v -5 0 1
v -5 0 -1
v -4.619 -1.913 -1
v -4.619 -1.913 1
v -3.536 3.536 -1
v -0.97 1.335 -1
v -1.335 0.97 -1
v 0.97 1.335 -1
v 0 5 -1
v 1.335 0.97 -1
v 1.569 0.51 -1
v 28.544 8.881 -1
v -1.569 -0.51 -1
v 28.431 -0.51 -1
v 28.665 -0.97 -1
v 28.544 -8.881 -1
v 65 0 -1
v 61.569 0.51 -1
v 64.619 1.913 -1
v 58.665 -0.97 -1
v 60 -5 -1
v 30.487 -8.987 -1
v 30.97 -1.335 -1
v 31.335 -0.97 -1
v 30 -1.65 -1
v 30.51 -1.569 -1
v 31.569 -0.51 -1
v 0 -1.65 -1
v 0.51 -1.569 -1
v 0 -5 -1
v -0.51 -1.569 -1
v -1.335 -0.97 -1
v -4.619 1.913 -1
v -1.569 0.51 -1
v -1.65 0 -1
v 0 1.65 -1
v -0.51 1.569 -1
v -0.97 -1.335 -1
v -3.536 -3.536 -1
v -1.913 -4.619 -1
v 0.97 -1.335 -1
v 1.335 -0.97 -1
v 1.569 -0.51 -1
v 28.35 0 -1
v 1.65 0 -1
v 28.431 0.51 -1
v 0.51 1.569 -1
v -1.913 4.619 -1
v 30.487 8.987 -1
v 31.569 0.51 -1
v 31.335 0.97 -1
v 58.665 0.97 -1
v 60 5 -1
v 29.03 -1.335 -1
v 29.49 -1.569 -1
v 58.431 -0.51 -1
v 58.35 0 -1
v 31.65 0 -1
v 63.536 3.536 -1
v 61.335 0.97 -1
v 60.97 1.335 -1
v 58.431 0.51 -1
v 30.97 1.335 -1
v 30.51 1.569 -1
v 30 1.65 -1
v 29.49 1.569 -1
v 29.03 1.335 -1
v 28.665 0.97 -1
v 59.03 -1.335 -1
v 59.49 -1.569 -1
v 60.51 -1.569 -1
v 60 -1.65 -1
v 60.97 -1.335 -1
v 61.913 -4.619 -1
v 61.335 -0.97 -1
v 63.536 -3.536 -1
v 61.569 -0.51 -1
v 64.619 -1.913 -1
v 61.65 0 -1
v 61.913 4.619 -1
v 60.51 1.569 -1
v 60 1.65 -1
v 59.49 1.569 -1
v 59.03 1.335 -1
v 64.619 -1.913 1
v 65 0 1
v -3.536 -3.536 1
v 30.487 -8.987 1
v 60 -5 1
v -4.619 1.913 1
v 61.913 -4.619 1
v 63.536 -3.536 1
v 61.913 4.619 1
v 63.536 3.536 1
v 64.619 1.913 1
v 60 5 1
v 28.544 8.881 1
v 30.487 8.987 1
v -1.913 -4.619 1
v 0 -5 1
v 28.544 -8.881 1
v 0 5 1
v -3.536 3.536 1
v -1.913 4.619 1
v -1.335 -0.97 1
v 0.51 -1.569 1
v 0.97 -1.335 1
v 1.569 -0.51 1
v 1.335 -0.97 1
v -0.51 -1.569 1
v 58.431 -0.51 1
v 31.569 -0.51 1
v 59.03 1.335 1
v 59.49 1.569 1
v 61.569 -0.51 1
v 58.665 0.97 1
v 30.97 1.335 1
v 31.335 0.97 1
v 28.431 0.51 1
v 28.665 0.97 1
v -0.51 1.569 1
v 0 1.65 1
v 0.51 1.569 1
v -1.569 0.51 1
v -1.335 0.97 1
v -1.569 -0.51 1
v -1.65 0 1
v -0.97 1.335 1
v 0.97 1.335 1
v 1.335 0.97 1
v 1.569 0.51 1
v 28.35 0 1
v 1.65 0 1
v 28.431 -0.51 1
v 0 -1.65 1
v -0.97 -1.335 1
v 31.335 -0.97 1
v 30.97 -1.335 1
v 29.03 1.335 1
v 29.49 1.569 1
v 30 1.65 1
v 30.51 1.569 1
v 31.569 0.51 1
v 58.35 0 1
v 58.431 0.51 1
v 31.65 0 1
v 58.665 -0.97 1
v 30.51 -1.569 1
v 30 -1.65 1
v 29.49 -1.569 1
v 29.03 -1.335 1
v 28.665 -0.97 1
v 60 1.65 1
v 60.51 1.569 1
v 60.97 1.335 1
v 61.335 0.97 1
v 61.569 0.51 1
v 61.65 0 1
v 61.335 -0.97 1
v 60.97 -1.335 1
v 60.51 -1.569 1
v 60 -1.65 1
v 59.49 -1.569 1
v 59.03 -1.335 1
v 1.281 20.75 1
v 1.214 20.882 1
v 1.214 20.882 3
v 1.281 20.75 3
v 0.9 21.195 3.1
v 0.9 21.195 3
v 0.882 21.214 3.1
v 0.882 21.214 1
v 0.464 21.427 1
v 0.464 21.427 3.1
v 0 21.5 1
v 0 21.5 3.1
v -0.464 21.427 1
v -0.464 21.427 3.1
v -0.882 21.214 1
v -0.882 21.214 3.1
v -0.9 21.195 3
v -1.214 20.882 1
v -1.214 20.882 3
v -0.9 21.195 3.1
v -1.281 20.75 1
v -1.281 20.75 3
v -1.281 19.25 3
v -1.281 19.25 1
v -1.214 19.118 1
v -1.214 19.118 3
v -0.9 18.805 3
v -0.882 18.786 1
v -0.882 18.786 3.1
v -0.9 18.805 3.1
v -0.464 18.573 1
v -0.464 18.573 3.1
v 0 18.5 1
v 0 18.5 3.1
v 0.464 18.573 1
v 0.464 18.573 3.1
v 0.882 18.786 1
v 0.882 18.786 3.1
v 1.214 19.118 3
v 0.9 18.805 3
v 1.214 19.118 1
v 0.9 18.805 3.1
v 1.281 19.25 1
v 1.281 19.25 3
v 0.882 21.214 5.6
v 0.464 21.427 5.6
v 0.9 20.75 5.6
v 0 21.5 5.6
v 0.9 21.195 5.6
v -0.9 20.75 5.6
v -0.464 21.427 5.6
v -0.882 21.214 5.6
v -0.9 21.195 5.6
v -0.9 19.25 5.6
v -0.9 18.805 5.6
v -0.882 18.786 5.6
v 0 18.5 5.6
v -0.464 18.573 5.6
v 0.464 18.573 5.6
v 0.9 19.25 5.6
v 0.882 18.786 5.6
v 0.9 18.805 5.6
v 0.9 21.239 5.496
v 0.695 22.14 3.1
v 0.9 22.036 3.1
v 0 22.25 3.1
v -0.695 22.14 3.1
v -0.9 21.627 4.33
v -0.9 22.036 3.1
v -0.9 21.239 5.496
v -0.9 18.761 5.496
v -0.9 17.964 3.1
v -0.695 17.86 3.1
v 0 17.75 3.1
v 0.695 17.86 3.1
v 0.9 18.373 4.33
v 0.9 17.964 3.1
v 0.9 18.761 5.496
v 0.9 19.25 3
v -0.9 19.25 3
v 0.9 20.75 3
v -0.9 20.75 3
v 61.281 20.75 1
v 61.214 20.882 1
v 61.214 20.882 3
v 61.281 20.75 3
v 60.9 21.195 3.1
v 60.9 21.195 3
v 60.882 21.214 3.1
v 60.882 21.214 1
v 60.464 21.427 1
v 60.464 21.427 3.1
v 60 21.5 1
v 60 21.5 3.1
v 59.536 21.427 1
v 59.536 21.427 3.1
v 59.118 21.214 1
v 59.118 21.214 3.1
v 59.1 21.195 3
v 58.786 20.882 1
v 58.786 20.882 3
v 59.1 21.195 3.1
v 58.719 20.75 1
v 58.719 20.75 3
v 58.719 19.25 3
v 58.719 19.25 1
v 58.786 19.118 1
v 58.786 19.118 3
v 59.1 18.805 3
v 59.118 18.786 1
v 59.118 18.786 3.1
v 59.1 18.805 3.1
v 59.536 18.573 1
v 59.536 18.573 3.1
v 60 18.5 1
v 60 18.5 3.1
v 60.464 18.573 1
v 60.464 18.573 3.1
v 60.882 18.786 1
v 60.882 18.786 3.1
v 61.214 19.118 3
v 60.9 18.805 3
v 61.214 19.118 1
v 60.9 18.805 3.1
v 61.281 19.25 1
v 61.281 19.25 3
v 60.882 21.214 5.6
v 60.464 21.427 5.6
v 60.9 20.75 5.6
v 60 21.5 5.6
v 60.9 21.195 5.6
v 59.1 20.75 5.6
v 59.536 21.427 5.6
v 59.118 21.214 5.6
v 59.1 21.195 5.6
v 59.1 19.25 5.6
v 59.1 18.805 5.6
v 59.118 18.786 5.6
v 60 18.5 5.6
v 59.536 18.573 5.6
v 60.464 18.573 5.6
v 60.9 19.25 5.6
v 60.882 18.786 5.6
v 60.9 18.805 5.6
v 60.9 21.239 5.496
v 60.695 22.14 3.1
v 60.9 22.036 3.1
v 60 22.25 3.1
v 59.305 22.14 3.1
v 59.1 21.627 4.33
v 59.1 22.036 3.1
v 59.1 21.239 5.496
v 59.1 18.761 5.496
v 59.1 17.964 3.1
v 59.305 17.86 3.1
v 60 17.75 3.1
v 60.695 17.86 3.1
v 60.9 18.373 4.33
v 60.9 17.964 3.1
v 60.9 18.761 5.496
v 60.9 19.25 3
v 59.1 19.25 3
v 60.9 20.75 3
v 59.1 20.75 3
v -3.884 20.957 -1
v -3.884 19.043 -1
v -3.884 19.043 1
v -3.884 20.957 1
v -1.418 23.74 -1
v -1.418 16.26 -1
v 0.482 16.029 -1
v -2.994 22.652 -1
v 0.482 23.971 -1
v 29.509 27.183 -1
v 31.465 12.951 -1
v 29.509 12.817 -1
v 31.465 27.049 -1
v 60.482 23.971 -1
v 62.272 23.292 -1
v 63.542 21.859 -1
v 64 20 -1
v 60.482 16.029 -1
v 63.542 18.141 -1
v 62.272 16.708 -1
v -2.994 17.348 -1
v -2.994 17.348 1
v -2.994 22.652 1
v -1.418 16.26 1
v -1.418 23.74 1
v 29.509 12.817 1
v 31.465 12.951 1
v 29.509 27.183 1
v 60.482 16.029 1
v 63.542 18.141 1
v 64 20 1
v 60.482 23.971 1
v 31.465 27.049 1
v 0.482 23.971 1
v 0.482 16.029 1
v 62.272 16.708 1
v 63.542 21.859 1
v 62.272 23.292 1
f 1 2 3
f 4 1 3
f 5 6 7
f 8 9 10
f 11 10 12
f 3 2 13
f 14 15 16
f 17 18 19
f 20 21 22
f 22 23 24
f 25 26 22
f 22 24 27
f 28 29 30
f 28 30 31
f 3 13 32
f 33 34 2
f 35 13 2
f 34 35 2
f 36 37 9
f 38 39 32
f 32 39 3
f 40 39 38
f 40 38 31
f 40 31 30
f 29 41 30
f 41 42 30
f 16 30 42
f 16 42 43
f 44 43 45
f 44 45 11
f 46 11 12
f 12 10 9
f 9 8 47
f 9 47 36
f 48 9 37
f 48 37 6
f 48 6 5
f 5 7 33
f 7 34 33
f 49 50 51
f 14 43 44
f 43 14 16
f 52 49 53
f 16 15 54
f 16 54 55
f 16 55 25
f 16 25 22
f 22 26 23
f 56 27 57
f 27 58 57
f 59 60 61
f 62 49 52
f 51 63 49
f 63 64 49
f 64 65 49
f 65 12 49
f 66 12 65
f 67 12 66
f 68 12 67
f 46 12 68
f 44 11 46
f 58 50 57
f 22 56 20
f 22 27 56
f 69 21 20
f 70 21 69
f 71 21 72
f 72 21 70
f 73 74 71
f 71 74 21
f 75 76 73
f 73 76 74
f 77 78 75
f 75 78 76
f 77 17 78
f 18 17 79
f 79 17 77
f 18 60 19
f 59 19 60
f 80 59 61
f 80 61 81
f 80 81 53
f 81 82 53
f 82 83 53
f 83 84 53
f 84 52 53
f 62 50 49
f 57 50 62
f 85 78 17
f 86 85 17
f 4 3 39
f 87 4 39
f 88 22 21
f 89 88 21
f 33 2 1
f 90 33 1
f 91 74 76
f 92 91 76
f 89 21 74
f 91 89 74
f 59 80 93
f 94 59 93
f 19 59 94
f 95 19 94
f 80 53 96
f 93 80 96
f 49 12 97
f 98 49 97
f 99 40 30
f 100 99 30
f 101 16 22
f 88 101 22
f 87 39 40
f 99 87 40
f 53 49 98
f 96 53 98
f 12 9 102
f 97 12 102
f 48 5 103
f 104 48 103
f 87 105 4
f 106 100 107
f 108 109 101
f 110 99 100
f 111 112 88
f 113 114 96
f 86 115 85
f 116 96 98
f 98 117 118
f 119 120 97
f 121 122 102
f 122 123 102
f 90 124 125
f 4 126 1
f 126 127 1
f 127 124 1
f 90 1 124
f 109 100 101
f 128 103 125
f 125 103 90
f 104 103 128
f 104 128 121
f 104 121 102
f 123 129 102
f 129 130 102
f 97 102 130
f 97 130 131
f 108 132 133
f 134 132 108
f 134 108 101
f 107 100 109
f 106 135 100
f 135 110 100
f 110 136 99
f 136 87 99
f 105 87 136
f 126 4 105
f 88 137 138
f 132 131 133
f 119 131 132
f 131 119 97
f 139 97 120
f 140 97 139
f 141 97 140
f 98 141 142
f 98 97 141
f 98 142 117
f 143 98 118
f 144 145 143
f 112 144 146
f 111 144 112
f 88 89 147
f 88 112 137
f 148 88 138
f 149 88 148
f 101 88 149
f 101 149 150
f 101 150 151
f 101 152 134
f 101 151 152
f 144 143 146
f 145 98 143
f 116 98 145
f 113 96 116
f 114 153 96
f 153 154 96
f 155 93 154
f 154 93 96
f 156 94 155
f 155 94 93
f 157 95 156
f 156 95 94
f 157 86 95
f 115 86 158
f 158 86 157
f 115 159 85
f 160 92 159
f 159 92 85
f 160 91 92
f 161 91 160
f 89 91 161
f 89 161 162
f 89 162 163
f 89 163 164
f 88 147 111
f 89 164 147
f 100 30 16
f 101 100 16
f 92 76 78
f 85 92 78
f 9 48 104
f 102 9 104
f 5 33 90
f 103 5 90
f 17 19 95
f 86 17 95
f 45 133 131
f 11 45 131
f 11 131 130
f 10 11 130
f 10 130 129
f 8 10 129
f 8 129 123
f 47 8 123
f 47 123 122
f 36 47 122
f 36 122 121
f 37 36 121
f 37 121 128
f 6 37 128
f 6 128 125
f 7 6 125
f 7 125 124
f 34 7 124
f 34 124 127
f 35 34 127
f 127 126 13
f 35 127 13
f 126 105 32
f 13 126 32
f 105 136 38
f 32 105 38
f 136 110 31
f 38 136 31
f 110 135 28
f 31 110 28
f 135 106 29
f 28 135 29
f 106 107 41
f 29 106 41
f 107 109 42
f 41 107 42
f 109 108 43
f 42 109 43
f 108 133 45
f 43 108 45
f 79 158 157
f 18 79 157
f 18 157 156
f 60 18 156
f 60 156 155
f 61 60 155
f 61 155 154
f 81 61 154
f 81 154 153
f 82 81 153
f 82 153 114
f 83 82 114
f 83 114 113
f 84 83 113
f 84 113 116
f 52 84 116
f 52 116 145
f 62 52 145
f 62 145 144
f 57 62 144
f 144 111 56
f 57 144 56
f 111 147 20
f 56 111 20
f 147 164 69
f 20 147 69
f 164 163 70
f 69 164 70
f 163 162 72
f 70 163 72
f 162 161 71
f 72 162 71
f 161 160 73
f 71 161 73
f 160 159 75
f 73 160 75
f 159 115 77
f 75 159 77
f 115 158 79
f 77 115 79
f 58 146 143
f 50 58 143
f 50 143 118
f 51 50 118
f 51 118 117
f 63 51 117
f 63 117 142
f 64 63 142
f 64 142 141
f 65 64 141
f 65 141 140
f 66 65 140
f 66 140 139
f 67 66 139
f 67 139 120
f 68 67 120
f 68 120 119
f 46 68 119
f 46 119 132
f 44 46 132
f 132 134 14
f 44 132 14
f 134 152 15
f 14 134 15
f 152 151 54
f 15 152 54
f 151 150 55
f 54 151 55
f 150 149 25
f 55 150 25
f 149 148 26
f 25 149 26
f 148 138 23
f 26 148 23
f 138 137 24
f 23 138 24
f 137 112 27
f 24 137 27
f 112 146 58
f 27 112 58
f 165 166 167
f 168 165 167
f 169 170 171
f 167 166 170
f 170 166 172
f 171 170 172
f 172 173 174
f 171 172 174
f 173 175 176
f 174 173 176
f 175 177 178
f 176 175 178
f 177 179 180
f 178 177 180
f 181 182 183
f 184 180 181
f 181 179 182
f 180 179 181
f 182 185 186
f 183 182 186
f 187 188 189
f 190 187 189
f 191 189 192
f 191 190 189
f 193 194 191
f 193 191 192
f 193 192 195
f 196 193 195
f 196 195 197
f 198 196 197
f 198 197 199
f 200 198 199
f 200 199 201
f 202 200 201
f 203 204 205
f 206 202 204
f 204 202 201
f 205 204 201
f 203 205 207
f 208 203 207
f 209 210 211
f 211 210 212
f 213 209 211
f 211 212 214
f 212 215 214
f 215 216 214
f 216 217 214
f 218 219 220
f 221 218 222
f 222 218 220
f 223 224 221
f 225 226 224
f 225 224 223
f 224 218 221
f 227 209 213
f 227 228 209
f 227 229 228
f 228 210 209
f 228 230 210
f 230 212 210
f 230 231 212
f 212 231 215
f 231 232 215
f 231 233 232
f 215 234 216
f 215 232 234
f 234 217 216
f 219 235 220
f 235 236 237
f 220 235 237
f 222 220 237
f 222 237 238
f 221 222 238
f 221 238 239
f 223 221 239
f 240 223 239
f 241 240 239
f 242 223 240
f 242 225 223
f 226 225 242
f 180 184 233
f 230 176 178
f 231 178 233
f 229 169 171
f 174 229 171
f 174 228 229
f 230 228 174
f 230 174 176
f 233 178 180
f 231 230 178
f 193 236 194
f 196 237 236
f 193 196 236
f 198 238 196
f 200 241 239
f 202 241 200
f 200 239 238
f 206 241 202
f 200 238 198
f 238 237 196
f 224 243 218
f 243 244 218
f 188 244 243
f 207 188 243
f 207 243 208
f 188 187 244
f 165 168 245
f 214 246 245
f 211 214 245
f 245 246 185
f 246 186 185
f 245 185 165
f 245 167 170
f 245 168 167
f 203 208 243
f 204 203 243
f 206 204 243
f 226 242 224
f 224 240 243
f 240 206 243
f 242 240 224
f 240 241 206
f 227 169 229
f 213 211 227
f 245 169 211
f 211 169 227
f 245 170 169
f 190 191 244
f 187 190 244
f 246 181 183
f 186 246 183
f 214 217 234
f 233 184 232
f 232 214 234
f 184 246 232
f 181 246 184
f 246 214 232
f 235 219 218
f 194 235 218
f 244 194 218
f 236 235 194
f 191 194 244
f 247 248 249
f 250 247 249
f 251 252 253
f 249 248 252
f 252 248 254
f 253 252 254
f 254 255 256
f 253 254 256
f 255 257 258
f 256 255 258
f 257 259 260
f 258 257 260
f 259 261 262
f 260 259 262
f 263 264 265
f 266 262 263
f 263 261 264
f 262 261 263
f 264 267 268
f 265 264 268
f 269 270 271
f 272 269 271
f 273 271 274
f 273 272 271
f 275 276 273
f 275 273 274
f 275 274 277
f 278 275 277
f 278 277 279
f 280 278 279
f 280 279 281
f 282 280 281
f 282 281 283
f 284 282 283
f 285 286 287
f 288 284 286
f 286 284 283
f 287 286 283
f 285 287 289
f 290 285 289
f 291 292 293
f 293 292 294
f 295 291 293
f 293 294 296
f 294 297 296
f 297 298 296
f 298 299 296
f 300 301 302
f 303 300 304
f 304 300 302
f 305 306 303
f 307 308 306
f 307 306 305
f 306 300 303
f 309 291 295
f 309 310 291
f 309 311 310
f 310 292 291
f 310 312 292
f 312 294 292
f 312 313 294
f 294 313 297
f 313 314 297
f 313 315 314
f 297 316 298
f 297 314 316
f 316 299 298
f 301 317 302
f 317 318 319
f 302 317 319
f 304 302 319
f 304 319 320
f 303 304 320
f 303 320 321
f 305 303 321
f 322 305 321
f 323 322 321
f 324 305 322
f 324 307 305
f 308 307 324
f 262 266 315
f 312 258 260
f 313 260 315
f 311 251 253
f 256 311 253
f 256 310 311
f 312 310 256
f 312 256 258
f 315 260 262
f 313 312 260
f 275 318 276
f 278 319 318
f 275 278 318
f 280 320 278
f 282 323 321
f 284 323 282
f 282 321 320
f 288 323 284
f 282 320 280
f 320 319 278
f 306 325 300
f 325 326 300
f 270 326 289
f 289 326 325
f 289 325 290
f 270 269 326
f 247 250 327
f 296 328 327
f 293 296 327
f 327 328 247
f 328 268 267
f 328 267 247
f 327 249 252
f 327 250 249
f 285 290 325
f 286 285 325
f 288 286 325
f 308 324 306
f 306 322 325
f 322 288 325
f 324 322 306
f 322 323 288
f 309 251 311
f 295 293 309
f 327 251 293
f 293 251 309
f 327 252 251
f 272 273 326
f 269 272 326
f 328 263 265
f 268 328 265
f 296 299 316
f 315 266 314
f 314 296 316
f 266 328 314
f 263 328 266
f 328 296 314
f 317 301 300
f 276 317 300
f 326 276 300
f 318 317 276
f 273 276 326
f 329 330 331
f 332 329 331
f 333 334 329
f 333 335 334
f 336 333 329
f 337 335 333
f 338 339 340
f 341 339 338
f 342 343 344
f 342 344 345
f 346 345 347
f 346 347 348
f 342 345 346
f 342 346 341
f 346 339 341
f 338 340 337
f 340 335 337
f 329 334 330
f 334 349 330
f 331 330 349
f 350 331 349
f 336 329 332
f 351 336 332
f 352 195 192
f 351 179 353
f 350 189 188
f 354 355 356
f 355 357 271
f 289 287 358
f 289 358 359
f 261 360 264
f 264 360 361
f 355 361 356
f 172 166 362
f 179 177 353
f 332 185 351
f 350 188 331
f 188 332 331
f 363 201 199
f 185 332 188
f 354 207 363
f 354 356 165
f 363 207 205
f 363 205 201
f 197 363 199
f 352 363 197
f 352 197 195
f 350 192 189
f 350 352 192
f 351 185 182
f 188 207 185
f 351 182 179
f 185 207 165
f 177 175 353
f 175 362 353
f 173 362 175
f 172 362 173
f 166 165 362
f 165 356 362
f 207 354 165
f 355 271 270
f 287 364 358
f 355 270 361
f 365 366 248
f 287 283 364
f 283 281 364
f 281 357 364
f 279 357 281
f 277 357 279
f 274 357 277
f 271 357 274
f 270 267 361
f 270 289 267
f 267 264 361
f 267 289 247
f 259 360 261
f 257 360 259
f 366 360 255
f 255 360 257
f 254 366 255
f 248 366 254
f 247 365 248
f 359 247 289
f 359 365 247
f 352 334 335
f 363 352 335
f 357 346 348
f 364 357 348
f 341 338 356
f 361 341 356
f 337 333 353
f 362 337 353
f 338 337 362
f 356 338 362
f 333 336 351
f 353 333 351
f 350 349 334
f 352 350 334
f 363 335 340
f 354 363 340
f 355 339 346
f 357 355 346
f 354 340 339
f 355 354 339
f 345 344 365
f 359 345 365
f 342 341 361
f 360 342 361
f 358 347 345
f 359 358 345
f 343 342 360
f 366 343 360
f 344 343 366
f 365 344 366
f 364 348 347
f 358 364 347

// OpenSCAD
//Hull test
clearance=0.6;

module beam(length,width,height,hole) {
	difference() {
		//Body
		hull(){
		cylinder(d=width,h=height,center=true);
		translate([length/2,0,0])
			cylinder(d=width*1.8,h=height,center=true);
		translate([length,0,0])
			cylinder(d=width,h=height,center=true);	
		};
		//Holes
		cylinder(d=hole+clearance/2,h=height*1.5,center=true,$fn=20);
		translate([length,0,0])
			cylinder(d=hole+clearance/2,h=height*1.5,center=true,$fn=20);
		translate([length/2,0,0])
			cylinder(d=hole+clearance/2,h=height*1.5,center=true,$fn=20);
	}
}

module rivet(length,diameter) {
//Length excludes that of clips, it's the lenght of the part that passes through
		head = 2.5;
		hdiameter = diameter + 1.5;
		difference() {
			union() {
				cylinder(d=diameter,h=length+clearance,$fn=20);
				translate([0,0,length-head+clearance])
					cylinder(r2=(diameter/2),r1=(hdiameter/2),h=head,$fn=20);	
				}
			translate([-diameter,-diameter/4,length-head-2])
				cube([diameter*2,diameter/2,head*3]);
			
				translate([diameter/2-clearance,-diameter,length-head+clearance-0.1])
					cube([diameter/2,diameter*2,head*3]);
			
				translate([-diameter+clearance,-diameter,length-head+clearance-0.1])
					cube([diameter/2,diameter*2,head*3]);
		}
		
}

module beam2(length,width,height) {
		//Body
		union() {
			hull(){
			cylinder(d=width,h=height,center=true);
			translate([length/2,0,0])
				cylinder(d=width*1.8,h=height,center=true);
			translate([length,0,0])
				cylinder(d=width,h=height,center=true);	
			};
			rivet(5,3);
			translate([length,0,0])
				rivet(5,3);
		}
}

beam(60,10,2,3);
translate([0,20,0])
		beam2(60,8,2);
